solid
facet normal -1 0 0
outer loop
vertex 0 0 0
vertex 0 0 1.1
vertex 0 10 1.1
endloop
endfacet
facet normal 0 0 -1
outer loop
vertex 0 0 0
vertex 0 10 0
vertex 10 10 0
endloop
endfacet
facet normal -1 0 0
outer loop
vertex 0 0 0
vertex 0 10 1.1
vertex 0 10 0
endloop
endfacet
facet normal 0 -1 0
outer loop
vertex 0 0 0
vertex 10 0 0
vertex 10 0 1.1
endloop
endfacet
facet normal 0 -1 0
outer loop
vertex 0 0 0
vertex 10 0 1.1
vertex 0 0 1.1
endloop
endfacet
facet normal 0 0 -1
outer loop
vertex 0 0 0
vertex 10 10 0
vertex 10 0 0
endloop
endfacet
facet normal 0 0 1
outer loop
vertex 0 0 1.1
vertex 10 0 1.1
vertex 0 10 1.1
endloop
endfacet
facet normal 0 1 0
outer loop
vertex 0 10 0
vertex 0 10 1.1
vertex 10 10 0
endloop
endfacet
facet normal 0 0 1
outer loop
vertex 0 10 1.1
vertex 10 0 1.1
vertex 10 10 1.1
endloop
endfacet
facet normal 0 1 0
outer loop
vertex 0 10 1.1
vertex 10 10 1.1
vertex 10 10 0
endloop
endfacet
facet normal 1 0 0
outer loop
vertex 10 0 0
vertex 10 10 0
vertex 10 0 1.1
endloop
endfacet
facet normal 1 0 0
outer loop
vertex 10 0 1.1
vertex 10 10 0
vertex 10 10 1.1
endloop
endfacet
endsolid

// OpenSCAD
/* Warning, this is a very basic generator with a lot of approximation 
input data : [XBGA (TFBGA), 2XX, 10x10x1.10mm, 121, , F, C04-00148F]
generated by com.zoubworld.electronics.cad.model3d.Basic
Date : Sun Feb 15 10:50:48 CET 2026
*/

//body
color("black")
translate([0,0,0])
cube([10.0,10.0,1.1], center=false);
